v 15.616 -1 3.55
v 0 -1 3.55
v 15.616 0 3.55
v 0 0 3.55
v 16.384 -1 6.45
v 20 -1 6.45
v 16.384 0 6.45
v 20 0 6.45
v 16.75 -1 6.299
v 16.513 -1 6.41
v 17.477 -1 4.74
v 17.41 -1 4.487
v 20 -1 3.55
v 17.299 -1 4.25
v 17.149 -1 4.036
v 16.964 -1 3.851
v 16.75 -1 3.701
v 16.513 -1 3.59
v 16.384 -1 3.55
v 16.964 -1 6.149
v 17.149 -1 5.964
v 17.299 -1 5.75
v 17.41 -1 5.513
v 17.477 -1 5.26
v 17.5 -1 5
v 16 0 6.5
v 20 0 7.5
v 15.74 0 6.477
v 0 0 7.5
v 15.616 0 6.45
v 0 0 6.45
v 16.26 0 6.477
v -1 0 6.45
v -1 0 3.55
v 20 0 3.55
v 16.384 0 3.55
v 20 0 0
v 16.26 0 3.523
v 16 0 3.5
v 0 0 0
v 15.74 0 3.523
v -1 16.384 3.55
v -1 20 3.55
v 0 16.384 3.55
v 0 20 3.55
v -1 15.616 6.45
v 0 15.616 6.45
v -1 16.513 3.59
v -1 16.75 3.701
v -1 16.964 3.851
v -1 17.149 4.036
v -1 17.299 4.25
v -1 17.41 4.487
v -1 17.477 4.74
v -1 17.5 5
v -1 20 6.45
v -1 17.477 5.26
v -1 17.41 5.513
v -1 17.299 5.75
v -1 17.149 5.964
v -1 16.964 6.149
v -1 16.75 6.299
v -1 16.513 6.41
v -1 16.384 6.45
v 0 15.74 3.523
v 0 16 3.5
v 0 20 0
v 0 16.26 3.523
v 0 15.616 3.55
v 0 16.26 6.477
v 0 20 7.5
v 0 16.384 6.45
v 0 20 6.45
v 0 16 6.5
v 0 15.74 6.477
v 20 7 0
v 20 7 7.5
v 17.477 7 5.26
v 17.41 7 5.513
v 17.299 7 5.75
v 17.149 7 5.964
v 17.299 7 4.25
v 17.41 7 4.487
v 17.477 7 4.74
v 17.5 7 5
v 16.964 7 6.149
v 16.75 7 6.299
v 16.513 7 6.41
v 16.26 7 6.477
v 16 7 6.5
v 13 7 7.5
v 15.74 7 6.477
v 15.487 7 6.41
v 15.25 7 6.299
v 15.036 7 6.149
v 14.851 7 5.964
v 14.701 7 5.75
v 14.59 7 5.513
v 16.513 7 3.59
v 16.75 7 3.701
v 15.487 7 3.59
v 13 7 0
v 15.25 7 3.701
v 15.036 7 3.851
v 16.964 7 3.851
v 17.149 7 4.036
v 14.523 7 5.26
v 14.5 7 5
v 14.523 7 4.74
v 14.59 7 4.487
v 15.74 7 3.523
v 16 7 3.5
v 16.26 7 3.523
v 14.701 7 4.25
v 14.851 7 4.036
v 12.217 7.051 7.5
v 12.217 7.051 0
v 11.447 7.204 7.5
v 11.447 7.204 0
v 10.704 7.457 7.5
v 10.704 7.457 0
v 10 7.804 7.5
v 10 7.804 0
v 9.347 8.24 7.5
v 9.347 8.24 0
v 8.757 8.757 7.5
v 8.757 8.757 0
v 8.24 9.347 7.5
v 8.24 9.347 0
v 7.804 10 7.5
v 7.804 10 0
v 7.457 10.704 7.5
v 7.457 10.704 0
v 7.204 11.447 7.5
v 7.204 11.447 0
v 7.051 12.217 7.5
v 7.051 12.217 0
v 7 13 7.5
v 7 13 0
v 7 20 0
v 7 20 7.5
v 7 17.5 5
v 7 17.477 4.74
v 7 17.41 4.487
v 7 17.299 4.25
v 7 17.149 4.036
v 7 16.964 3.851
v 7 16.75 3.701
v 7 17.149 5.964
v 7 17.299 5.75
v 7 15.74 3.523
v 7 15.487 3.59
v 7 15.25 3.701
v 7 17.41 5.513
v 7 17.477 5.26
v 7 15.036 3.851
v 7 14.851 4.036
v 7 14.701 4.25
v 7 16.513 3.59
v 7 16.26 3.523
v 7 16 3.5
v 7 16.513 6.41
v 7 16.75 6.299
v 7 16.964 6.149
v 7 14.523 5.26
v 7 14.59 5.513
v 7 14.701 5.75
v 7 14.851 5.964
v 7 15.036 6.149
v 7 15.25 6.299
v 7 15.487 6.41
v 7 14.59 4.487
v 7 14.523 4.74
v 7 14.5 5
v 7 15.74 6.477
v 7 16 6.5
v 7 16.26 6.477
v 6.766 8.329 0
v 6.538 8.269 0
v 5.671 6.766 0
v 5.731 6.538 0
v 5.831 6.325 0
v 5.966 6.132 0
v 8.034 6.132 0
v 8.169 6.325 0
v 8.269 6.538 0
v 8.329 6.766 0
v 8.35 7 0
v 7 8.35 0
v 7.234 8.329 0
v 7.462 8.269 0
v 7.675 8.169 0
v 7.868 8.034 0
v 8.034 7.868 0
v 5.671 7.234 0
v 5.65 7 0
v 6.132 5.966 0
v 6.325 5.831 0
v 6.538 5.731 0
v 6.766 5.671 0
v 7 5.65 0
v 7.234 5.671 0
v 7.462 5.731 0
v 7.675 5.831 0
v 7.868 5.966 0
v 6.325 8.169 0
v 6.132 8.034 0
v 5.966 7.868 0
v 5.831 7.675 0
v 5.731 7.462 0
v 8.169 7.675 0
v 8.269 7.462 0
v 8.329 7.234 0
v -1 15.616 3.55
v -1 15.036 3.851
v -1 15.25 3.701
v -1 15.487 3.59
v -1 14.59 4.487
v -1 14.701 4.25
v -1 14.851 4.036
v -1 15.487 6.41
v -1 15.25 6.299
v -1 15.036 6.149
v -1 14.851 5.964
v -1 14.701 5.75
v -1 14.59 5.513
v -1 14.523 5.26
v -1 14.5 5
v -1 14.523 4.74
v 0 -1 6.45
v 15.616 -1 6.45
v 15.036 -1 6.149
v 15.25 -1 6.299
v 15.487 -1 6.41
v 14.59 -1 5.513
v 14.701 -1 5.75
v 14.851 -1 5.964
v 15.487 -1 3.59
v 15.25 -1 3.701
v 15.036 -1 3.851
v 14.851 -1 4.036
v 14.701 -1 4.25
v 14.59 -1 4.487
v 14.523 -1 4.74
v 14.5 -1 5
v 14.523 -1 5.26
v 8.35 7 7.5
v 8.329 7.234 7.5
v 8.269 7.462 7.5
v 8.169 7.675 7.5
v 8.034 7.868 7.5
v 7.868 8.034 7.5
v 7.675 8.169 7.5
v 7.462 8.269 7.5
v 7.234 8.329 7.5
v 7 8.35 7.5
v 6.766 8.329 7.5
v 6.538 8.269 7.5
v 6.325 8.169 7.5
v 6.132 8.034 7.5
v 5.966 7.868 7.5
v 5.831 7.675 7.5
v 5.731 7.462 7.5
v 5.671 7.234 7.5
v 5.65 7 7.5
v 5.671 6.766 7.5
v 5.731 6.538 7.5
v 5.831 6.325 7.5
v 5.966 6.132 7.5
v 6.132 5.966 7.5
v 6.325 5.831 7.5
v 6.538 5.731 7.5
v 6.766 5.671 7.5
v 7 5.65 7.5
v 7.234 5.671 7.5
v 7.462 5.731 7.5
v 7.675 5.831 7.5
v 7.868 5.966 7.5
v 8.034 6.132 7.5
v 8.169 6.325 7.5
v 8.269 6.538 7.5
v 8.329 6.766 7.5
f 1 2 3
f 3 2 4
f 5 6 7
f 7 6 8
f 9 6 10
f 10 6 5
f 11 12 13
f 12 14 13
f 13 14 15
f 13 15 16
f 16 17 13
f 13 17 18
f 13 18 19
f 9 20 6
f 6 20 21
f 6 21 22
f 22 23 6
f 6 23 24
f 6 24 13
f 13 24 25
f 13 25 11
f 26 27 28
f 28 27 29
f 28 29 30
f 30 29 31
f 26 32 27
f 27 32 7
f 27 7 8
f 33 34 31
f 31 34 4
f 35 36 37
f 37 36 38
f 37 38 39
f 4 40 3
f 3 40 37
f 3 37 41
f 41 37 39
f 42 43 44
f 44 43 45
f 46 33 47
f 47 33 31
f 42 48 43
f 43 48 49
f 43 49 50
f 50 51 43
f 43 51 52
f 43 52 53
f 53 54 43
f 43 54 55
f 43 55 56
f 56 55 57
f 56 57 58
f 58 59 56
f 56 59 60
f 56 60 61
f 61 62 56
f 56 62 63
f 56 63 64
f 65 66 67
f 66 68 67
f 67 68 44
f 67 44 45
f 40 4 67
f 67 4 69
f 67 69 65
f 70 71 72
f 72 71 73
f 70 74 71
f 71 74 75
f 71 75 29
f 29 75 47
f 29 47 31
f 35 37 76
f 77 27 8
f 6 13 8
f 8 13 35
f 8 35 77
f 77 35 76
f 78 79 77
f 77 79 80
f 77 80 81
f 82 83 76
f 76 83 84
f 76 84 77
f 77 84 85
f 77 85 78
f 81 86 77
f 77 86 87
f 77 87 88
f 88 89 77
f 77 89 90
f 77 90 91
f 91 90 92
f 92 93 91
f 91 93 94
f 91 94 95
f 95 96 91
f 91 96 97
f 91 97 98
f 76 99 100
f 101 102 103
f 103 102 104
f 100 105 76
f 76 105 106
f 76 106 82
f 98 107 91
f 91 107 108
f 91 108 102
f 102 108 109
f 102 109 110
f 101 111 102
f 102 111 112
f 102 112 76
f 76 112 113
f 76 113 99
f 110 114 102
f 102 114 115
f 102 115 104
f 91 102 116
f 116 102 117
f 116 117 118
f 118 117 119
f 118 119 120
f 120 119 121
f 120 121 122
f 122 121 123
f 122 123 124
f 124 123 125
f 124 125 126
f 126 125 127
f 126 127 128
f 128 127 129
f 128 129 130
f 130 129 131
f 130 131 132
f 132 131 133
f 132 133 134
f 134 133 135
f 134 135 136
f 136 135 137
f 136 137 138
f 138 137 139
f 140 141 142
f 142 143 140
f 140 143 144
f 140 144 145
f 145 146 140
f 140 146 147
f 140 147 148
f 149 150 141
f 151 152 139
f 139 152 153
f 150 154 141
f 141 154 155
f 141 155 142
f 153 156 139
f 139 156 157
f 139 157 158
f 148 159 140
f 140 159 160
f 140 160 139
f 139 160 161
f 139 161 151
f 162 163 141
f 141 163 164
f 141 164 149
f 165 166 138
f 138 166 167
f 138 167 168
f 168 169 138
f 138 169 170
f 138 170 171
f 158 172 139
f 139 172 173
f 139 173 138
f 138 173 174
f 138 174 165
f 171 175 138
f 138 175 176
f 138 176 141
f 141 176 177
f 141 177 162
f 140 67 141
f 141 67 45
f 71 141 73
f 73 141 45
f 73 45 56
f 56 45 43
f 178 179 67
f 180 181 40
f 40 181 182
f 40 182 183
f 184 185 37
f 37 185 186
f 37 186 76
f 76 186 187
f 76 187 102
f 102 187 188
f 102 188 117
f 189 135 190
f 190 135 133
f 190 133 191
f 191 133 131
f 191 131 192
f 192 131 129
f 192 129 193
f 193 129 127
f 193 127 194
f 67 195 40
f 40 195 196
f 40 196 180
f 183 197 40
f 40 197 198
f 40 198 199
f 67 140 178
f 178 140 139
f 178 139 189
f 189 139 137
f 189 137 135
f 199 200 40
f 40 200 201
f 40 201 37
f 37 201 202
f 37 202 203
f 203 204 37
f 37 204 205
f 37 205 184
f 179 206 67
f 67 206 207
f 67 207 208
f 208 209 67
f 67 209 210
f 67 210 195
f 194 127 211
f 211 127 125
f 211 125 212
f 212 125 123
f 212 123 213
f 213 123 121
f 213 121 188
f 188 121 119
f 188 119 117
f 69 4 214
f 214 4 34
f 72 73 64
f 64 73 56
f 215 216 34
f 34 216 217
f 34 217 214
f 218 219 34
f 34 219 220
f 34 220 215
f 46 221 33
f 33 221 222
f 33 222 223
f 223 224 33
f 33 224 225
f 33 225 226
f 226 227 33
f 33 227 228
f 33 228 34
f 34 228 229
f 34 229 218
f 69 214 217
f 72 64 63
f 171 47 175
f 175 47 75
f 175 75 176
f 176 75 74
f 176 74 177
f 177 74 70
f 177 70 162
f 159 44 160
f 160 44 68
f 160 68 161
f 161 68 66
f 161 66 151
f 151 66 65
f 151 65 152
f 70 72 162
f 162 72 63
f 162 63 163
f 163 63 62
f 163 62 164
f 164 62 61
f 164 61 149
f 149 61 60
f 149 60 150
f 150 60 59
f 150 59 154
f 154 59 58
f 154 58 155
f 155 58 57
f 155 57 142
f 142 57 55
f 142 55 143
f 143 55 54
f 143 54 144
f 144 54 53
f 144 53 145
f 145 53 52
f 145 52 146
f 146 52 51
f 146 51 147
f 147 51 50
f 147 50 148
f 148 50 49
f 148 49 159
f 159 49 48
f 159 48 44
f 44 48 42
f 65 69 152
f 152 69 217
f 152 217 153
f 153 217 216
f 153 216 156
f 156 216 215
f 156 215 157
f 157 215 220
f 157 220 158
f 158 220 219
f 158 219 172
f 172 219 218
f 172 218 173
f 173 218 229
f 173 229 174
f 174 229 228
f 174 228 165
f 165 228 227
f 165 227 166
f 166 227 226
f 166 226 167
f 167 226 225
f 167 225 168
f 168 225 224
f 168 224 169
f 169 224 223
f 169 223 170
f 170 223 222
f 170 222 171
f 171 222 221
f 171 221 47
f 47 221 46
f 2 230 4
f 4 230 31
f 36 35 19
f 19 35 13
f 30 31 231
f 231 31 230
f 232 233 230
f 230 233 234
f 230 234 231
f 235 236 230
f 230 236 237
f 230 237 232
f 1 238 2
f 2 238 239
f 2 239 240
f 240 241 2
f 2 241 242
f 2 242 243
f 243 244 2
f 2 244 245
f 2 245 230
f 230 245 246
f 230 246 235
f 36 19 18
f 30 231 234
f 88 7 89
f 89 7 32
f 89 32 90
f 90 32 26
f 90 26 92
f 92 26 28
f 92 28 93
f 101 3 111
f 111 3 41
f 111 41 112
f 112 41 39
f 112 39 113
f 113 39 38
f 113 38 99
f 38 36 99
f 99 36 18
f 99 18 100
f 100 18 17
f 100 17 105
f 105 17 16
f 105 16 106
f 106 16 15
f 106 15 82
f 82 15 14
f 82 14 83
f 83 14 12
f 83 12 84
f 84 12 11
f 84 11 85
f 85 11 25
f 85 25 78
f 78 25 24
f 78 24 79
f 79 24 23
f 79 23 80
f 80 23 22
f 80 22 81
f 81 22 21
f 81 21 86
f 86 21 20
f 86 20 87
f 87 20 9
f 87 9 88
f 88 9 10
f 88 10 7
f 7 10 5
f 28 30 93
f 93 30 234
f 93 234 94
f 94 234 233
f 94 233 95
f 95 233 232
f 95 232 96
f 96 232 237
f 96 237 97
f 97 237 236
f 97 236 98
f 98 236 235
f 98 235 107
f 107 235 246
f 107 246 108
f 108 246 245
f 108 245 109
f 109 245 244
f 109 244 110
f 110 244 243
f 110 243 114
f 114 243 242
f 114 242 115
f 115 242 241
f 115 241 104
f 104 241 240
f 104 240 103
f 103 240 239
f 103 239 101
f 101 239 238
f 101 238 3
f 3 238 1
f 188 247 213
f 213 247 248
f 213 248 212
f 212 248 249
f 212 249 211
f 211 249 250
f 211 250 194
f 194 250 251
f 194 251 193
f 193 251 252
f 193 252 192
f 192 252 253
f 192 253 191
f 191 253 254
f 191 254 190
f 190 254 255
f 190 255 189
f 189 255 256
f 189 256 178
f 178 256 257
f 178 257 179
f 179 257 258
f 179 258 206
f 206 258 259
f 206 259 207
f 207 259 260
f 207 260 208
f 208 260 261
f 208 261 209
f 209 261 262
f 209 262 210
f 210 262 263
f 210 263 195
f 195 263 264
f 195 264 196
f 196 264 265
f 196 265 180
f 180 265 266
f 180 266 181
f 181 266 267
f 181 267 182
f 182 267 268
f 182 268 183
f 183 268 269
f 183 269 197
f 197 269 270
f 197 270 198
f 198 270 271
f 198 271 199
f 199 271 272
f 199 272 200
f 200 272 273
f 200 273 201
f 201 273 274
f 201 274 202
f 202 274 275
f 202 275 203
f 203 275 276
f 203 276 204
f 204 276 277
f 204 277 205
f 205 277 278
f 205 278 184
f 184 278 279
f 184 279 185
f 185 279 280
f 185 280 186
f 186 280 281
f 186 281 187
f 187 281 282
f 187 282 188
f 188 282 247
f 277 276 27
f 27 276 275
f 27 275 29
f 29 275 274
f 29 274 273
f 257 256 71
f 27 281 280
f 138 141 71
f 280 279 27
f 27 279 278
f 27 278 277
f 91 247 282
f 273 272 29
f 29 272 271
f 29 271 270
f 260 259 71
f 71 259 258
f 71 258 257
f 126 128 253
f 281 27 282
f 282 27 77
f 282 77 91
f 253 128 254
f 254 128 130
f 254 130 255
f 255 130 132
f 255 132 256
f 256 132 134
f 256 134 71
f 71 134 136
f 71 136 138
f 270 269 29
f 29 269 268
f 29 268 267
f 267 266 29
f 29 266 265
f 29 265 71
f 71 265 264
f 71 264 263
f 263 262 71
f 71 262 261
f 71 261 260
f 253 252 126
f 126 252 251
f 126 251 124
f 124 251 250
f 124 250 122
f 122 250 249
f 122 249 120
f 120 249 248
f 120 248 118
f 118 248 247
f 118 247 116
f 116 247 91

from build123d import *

# Parameters (mm, degrees)
MAIN_DEPTH                         = 10
ESQUISSE4_W                        = 2.9
ESQUISSE4_H                        = 20
MAKERBEAMFIXVERTICAL_DEPTH         = 1
MAKERBEAMVERTICALHOLE_DEPTH        = 31
MAKERBEAMVERTICALHOLE_DEPTH_BACK   = 31
ESQUISSE2_R                        = 1.5
ESQUISSE5_W                        = 20
ESQUISSE5_H                        = 2.9
MAKERBEAMFIXHORIZONTAL_DEPTH       = 1
MAKERBEAMHORIZONTALHOLE_DEPTH      = 31
MAKERBEAMHORIZONTALHOLE_DEPTH_BACK = 31
ESQUISSE3_R                        = 1.5
SKETCH1_R                          = 1.35
WINDOWFIXHOLE_DEPTH                = 31
SKETCH2_W                          = 2.5
SKETCH2_H                          = 20
WINDOW_DEPTH                       = 31


with BuildPart() as part:
    # Esquisse1 → Main (new body)
    with BuildSketch(Plane.XY):
        with BuildLine():
            Line((0, 0), (20, 0))
            Line((20, 0), (20, 7))
            Line((20, 7), (13, 7))
            ThreePointArc((13, 7), (8.757359313, 8.757359313), (7, 13))
            Line((7, 13), (7, 20))
            Line((7, 20), (0, 20))
            Line((0, 20), (0, 0))
        make_face()
    extrude(amount=MAIN_DEPTH)

    # Esquisse4 → MakerBeamFixVertical (add)
    with BuildSketch(Plane.ZY):
        with Locations((5, 10)):
            Rectangle(ESQUISSE4_W, ESQUISSE4_H)
    extrude(amount=MAKERBEAMFIXVERTICAL_DEPTH)

    # Esquisse2 → MakerBeamVerticalHole (cut, two sides: drawn at the far end of the back side and taken through both)
    with BuildSketch(Plane.ZY.offset(-MAKERBEAMVERTICALHOLE_DEPTH_BACK)):
        with Locations(Location((5, 16, 0), (0, 0, 270))):
            Circle(ESQUISSE2_R)
    extrude(amount=MAKERBEAMVERTICALHOLE_DEPTH + MAKERBEAMVERTICALHOLE_DEPTH_BACK, mode=Mode.SUBTRACT)

    # Esquisse5 → MakerBeamFixHorizontal (add)
    with BuildSketch(Plane(origin=(0, 0, 0), x_dir=(-1, 0, 0), z_dir=(0, -1, 0))):
        with Locations((-10, -5)):
            Rectangle(ESQUISSE5_W, ESQUISSE5_H)
    extrude(amount=MAKERBEAMFIXHORIZONTAL_DEPTH)

    # Esquisse3 → MakerBeamHorizontalHole (cut, two sides: drawn at the far end of the back side and taken through both)
    with BuildSketch(Plane.XZ.offset(-MAKERBEAMHORIZONTALHOLE_DEPTH_BACK)):
        with Locations(Location((16, 5, 0), (0, 0, 270))):
            Circle(ESQUISSE3_R)
    extrude(amount=MAKERBEAMHORIZONTALHOLE_DEPTH + MAKERBEAMHORIZONTALHOLE_DEPTH_BACK, mode=Mode.SUBTRACT)

    # Sketch1 → WindowFixHole (cut, through all)
    with BuildSketch(Plane.XY.offset(10)):
        with Locations((7, 7)):
            Circle(SKETCH1_R)
    extrude(amount=-WINDOWFIXHOLE_DEPTH, mode=Mode.SUBTRACT)

    # Sketch2 → Window (cut, through all)
    with BuildSketch(Plane.ZY):
        with Locations((8.75, 10)):
            Rectangle(SKETCH2_W, SKETCH2_H)
    extrude(amount=-WINDOW_DEPTH, mode=Mode.SUBTRACT)


solid = part.part
